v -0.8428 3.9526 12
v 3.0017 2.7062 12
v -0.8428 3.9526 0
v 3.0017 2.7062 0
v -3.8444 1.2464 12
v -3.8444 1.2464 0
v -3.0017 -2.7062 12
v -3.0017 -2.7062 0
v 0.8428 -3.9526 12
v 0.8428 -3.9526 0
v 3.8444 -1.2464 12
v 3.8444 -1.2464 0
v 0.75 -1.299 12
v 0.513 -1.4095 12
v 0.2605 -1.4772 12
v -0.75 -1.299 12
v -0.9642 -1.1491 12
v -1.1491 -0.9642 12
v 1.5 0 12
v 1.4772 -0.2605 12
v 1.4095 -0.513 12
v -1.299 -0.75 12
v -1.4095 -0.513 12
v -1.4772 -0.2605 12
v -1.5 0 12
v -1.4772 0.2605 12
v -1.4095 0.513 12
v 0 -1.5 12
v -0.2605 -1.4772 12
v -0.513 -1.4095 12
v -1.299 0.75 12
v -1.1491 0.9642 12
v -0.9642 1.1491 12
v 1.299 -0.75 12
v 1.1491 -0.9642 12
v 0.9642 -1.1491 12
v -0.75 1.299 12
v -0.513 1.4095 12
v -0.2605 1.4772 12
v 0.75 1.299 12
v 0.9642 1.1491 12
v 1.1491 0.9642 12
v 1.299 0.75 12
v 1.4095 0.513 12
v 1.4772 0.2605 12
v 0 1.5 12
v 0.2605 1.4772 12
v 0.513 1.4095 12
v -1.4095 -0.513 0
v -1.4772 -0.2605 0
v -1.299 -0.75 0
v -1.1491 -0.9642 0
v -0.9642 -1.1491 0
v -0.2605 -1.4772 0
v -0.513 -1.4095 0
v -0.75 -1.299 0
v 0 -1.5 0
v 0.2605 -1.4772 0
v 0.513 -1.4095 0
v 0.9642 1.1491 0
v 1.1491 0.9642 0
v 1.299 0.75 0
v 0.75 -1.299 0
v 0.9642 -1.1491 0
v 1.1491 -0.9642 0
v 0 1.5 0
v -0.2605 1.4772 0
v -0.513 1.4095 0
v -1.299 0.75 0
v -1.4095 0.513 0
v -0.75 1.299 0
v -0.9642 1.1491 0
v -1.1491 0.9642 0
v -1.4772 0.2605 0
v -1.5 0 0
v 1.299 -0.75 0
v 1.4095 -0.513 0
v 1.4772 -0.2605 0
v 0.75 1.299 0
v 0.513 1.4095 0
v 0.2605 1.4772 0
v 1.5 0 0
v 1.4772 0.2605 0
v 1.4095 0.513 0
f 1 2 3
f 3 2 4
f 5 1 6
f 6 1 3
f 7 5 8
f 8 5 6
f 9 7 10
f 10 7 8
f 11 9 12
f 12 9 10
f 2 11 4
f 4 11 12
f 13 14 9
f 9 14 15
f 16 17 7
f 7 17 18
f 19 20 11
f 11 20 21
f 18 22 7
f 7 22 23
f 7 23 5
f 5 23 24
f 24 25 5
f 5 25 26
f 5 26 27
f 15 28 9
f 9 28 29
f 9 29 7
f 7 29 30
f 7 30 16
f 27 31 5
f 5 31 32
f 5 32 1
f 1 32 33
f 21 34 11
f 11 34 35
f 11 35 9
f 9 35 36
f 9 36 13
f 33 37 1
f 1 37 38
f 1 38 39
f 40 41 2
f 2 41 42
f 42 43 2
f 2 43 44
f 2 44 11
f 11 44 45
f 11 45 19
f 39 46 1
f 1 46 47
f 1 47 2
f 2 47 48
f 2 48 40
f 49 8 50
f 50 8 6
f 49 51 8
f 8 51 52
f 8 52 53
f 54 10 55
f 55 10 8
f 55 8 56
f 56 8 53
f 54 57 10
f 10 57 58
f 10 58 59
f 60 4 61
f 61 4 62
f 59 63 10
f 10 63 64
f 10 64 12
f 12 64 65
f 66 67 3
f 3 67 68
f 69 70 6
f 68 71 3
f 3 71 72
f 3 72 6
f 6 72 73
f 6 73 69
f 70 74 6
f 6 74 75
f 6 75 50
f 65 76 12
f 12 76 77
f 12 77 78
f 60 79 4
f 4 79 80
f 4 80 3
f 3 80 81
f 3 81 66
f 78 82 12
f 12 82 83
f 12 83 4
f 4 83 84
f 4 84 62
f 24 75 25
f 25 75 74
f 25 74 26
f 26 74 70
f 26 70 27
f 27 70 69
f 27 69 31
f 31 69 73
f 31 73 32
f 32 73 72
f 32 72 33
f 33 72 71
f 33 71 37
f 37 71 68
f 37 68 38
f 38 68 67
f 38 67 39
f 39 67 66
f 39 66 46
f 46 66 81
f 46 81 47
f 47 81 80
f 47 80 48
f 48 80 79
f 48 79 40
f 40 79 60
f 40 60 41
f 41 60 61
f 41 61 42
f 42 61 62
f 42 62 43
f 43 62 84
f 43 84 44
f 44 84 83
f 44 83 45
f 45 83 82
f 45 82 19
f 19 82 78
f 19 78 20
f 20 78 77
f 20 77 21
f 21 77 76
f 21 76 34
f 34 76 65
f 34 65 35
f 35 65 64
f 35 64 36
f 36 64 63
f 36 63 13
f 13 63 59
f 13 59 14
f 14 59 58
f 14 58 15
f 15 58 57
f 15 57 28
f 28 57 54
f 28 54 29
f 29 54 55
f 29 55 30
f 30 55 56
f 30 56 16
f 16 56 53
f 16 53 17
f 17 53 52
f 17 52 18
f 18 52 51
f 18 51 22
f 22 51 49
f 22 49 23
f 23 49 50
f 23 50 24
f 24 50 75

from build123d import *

# Parameters (mm, degrees)
RESSALTO_EXTRUS_O1_DEPTH = 12
CORTE_EXTRUS_O2_REACH    = 15.206
ESBO_O3_R                = 1.5


with BuildPart() as part:
    # Esboço1 → Ressalto-extrusão1 (new body)
    with BuildSketch(Plane.XY):
        Polygon((-0.842772028, 3.952602768), (-3.844440422, 1.246439398), (-3.001668394, -2.70616337), (0.842772028, -3.952602768), (3.844440422, -1.246439398), (3.001668394, 2.70616337), align=None)
    extrude(amount=RESSALTO_EXTRUS_O1_DEPTH)

    # Esboço3 → Corte-extrusão2 (cut, up to next)
    with BuildSketch(Plane(origin=(0, 0, 0), x_dir=(-1, 0, 0), z_dir=(0, 0, -1)), mode=Mode.PRIVATE) as corte_extrus_o2_sk1:
        Circle(ESBO_O3_R)
    corte_extrus_o2_tool1 = extrude(corte_extrus_o2_sk1.sketch, amount=-CORTE_EXTRUS_O2_REACH, mode=Mode.PRIVATE) & part.part
    add(corte_extrus_o2_tool1.solids().sort_by_distance((0, 0, 0))[0], mode=Mode.SUBTRACT)


solid = part.part
